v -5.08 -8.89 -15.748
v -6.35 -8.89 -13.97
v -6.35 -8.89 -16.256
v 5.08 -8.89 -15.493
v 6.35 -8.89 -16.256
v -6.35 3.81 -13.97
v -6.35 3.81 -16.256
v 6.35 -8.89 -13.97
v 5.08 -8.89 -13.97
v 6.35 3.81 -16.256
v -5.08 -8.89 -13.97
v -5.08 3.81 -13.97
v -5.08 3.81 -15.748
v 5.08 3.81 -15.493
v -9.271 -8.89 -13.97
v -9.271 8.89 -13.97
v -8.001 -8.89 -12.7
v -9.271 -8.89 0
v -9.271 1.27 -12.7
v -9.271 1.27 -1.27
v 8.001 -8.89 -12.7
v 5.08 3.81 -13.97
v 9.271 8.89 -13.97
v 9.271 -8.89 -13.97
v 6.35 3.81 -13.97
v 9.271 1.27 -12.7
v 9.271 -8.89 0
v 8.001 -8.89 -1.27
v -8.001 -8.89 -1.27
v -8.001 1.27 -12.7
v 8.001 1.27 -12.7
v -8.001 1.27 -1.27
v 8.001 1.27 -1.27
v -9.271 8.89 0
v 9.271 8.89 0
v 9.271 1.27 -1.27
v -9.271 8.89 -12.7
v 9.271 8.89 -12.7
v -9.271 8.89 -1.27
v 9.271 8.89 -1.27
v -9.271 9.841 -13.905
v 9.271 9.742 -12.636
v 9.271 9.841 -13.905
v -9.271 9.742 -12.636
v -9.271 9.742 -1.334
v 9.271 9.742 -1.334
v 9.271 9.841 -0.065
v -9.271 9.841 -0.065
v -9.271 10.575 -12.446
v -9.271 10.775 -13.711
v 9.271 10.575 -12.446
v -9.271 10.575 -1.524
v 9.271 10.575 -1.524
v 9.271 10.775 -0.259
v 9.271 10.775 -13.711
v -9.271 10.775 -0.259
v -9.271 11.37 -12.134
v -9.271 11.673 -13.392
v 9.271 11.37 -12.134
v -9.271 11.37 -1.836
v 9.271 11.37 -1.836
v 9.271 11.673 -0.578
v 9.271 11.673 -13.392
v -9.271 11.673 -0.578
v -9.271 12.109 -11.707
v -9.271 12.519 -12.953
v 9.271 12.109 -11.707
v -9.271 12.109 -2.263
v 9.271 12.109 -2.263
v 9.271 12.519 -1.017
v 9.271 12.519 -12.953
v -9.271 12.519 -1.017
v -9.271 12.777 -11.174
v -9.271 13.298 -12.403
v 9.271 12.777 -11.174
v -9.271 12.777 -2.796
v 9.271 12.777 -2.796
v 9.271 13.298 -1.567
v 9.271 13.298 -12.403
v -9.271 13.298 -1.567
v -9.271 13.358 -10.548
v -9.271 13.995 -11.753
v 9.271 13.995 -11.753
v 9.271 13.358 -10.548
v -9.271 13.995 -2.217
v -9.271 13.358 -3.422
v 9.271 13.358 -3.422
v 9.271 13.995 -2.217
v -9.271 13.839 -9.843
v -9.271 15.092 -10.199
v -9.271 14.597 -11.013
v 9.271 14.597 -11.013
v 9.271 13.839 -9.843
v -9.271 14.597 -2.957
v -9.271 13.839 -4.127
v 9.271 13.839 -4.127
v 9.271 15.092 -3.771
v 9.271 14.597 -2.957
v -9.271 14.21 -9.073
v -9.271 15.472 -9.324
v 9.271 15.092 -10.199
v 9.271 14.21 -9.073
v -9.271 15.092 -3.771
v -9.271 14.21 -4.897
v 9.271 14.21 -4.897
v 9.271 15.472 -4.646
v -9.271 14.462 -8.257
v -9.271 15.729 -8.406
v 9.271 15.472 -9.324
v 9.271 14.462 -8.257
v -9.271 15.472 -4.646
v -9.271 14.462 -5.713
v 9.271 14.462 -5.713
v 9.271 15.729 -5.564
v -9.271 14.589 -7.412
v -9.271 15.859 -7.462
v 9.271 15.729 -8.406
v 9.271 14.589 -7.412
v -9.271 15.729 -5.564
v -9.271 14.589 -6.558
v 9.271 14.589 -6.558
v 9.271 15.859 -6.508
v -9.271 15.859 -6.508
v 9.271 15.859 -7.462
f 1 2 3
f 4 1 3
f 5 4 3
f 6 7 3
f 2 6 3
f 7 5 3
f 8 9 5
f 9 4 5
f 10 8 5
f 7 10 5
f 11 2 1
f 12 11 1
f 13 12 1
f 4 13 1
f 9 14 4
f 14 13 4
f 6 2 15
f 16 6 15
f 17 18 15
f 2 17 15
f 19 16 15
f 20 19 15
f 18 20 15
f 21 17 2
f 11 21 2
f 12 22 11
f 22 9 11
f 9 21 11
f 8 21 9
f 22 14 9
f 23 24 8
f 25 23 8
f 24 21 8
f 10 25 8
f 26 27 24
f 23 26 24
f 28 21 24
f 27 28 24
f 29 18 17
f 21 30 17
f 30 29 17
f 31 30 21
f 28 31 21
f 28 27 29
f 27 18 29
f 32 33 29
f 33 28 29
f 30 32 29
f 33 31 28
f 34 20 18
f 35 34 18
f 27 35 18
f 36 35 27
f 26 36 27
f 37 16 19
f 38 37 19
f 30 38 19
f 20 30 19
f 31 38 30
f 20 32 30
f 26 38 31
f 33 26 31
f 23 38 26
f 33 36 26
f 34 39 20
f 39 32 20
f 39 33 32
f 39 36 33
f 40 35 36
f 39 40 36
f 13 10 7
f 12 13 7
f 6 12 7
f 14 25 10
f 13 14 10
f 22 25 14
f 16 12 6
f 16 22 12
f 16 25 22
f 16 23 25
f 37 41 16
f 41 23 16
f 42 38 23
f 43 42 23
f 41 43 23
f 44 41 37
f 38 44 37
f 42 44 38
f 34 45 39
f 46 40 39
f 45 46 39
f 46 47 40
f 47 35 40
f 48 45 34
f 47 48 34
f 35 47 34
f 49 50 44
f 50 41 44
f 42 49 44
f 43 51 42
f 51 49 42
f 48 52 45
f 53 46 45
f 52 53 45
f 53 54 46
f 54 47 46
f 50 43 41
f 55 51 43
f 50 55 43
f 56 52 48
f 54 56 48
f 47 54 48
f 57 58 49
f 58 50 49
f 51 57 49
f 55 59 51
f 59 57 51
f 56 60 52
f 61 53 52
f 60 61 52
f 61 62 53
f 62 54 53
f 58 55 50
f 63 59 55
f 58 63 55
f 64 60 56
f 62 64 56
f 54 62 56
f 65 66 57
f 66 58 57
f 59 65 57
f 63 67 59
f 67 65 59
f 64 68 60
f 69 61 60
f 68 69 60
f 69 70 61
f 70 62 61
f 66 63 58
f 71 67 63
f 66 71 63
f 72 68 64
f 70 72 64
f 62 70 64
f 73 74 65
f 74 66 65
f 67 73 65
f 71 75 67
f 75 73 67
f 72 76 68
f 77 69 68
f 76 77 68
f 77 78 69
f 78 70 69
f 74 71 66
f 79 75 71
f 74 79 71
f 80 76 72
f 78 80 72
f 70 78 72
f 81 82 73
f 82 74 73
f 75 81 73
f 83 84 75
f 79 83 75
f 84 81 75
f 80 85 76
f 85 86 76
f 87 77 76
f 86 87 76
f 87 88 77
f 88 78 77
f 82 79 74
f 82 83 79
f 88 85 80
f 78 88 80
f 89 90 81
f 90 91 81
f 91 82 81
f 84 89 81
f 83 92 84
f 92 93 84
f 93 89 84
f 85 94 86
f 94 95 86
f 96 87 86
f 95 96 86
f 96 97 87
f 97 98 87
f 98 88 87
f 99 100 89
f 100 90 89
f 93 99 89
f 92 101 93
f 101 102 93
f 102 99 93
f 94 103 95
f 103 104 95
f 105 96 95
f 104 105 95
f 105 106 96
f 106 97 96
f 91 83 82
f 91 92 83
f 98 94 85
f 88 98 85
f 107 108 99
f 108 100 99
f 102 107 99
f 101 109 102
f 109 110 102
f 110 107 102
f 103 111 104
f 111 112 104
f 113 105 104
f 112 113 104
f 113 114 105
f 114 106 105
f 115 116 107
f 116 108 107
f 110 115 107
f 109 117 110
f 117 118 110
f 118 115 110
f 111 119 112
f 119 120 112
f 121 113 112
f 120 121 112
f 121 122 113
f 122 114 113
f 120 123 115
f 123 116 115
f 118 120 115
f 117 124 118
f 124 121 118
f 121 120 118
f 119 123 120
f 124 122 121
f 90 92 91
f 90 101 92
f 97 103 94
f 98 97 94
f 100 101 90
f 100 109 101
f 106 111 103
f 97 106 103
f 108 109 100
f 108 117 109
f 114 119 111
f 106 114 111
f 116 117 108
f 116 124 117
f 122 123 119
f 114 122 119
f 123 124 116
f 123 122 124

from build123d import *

# Parameters (mm, degrees)
SKETCH1_W            = 18.542
SKETCH1_H            = 17.78
BOSS_EXTRUDE4_DEPTH  = 1.27
SKETCH4_W            = 18.542
SKETCH4_H            = 17.78
BOSS_EXTRUDE5_DEPTH  = 1.27
BOSS_EXTRUDE6_DEPTH  = 18.542
SKETCH7_W            = 11.43
SKETCH7_H            = 10.16
BOSS_EXTRUDE7_DEPTH  = 1.27
SKETCH12_W           = 12.7
SKETCH12_H           = 12.7
BOSS_EXTRUDE11_DEPTH = 2.286
CUT_EXTRUDE2_DEPTH   = 23.616343139
BOSS_EXTRUDE12_DEPTH = 1.27


with BuildPart() as part:
    # Sketch1 → Boss-Extrude4 (new body)
    with BuildSketch(Plane.XY):
        Rectangle(SKETCH1_W, SKETCH1_H)
    extrude(amount=-BOSS_EXTRUDE4_DEPTH)



with BuildPart() as body_2:
    # Sketch4 → Boss-Extrude5 (new body)
    with BuildSketch(Plane.XY.offset(-13.97)):
        Rectangle(SKETCH4_W, SKETCH4_H)
    extrude(amount=BOSS_EXTRUDE5_DEPTH)


with BuildPart() as part_1:
    add(part.part)

    add(body_2.part)  # Boss-Extrude6 merges body 2
    # Sketch6 → Boss-Extrude6 (add)
    with BuildSketch(Plane.ZY.offset(9.271)):
        with BuildLine():
            Line((-13.97, 8.89), (-12.7, 8.89))
            ThreePointArc((-12.7, 8.89), (-6.985, 14.605), (-1.27, 8.89))
            Line((-1.27, 8.89), (0, 8.89))
            ThreePointArc((0, 8.89), (-6.985, 15.875), (-13.97, 8.89))
        make_face()
    extrude(amount=-BOSS_EXTRUDE6_DEPTH)

    # Sketch7 → Boss-Extrude7 (add)
    with BuildSketch(Plane.ZY.offset(9.271)):
        with Locations((-6.985, -3.81)):
            Rectangle(SKETCH7_W, SKETCH7_H)
    extrude(amount=-BOSS_EXTRUDE7_DEPTH)

    # Sketch12 → Boss-Extrude11 (add)
    with BuildSketch(Plane(origin=(0, 0, -13.97), x_dir=(-1, 0, 0), z_dir=(0, 0, -1))):
        with Locations((0, -2.54)):
            Rectangle(SKETCH12_W, SKETCH12_H)
    extrude(amount=BOSS_EXTRUDE11_DEPTH)

    # Sketch13 → Cut-Extrude2 (cut, through all)
    with BuildSketch(Plane(origin=(0, 3.81, 0), x_dir=(1, 0, 0), z_dir=(0, 1, 0))):
        Polygon((-5.08, 13.97), (5.08, 13.97), (5.08, 15.493275397), (-5.08, 15.748), align=None)
    extrude(amount=-CUT_EXTRUDE2_DEPTH, mode=Mode.SUBTRACT)

    # Sketch8 → Boss-Extrude12 (add)
    with BuildSketch(Plane(origin=(9.271, 0, 0), x_dir=(0, 0, -1), z_dir=(1, 0, 0))):
        Polygon((1.905, 1.27), (1.27, 1.27), (1.27, -8.89), (12.7, -8.89), (12.7, 1.27), (10.795, 1.27), align=None)
    extrude(amount=-BOSS_EXTRUDE12_DEPTH)


solid = part_1.part
